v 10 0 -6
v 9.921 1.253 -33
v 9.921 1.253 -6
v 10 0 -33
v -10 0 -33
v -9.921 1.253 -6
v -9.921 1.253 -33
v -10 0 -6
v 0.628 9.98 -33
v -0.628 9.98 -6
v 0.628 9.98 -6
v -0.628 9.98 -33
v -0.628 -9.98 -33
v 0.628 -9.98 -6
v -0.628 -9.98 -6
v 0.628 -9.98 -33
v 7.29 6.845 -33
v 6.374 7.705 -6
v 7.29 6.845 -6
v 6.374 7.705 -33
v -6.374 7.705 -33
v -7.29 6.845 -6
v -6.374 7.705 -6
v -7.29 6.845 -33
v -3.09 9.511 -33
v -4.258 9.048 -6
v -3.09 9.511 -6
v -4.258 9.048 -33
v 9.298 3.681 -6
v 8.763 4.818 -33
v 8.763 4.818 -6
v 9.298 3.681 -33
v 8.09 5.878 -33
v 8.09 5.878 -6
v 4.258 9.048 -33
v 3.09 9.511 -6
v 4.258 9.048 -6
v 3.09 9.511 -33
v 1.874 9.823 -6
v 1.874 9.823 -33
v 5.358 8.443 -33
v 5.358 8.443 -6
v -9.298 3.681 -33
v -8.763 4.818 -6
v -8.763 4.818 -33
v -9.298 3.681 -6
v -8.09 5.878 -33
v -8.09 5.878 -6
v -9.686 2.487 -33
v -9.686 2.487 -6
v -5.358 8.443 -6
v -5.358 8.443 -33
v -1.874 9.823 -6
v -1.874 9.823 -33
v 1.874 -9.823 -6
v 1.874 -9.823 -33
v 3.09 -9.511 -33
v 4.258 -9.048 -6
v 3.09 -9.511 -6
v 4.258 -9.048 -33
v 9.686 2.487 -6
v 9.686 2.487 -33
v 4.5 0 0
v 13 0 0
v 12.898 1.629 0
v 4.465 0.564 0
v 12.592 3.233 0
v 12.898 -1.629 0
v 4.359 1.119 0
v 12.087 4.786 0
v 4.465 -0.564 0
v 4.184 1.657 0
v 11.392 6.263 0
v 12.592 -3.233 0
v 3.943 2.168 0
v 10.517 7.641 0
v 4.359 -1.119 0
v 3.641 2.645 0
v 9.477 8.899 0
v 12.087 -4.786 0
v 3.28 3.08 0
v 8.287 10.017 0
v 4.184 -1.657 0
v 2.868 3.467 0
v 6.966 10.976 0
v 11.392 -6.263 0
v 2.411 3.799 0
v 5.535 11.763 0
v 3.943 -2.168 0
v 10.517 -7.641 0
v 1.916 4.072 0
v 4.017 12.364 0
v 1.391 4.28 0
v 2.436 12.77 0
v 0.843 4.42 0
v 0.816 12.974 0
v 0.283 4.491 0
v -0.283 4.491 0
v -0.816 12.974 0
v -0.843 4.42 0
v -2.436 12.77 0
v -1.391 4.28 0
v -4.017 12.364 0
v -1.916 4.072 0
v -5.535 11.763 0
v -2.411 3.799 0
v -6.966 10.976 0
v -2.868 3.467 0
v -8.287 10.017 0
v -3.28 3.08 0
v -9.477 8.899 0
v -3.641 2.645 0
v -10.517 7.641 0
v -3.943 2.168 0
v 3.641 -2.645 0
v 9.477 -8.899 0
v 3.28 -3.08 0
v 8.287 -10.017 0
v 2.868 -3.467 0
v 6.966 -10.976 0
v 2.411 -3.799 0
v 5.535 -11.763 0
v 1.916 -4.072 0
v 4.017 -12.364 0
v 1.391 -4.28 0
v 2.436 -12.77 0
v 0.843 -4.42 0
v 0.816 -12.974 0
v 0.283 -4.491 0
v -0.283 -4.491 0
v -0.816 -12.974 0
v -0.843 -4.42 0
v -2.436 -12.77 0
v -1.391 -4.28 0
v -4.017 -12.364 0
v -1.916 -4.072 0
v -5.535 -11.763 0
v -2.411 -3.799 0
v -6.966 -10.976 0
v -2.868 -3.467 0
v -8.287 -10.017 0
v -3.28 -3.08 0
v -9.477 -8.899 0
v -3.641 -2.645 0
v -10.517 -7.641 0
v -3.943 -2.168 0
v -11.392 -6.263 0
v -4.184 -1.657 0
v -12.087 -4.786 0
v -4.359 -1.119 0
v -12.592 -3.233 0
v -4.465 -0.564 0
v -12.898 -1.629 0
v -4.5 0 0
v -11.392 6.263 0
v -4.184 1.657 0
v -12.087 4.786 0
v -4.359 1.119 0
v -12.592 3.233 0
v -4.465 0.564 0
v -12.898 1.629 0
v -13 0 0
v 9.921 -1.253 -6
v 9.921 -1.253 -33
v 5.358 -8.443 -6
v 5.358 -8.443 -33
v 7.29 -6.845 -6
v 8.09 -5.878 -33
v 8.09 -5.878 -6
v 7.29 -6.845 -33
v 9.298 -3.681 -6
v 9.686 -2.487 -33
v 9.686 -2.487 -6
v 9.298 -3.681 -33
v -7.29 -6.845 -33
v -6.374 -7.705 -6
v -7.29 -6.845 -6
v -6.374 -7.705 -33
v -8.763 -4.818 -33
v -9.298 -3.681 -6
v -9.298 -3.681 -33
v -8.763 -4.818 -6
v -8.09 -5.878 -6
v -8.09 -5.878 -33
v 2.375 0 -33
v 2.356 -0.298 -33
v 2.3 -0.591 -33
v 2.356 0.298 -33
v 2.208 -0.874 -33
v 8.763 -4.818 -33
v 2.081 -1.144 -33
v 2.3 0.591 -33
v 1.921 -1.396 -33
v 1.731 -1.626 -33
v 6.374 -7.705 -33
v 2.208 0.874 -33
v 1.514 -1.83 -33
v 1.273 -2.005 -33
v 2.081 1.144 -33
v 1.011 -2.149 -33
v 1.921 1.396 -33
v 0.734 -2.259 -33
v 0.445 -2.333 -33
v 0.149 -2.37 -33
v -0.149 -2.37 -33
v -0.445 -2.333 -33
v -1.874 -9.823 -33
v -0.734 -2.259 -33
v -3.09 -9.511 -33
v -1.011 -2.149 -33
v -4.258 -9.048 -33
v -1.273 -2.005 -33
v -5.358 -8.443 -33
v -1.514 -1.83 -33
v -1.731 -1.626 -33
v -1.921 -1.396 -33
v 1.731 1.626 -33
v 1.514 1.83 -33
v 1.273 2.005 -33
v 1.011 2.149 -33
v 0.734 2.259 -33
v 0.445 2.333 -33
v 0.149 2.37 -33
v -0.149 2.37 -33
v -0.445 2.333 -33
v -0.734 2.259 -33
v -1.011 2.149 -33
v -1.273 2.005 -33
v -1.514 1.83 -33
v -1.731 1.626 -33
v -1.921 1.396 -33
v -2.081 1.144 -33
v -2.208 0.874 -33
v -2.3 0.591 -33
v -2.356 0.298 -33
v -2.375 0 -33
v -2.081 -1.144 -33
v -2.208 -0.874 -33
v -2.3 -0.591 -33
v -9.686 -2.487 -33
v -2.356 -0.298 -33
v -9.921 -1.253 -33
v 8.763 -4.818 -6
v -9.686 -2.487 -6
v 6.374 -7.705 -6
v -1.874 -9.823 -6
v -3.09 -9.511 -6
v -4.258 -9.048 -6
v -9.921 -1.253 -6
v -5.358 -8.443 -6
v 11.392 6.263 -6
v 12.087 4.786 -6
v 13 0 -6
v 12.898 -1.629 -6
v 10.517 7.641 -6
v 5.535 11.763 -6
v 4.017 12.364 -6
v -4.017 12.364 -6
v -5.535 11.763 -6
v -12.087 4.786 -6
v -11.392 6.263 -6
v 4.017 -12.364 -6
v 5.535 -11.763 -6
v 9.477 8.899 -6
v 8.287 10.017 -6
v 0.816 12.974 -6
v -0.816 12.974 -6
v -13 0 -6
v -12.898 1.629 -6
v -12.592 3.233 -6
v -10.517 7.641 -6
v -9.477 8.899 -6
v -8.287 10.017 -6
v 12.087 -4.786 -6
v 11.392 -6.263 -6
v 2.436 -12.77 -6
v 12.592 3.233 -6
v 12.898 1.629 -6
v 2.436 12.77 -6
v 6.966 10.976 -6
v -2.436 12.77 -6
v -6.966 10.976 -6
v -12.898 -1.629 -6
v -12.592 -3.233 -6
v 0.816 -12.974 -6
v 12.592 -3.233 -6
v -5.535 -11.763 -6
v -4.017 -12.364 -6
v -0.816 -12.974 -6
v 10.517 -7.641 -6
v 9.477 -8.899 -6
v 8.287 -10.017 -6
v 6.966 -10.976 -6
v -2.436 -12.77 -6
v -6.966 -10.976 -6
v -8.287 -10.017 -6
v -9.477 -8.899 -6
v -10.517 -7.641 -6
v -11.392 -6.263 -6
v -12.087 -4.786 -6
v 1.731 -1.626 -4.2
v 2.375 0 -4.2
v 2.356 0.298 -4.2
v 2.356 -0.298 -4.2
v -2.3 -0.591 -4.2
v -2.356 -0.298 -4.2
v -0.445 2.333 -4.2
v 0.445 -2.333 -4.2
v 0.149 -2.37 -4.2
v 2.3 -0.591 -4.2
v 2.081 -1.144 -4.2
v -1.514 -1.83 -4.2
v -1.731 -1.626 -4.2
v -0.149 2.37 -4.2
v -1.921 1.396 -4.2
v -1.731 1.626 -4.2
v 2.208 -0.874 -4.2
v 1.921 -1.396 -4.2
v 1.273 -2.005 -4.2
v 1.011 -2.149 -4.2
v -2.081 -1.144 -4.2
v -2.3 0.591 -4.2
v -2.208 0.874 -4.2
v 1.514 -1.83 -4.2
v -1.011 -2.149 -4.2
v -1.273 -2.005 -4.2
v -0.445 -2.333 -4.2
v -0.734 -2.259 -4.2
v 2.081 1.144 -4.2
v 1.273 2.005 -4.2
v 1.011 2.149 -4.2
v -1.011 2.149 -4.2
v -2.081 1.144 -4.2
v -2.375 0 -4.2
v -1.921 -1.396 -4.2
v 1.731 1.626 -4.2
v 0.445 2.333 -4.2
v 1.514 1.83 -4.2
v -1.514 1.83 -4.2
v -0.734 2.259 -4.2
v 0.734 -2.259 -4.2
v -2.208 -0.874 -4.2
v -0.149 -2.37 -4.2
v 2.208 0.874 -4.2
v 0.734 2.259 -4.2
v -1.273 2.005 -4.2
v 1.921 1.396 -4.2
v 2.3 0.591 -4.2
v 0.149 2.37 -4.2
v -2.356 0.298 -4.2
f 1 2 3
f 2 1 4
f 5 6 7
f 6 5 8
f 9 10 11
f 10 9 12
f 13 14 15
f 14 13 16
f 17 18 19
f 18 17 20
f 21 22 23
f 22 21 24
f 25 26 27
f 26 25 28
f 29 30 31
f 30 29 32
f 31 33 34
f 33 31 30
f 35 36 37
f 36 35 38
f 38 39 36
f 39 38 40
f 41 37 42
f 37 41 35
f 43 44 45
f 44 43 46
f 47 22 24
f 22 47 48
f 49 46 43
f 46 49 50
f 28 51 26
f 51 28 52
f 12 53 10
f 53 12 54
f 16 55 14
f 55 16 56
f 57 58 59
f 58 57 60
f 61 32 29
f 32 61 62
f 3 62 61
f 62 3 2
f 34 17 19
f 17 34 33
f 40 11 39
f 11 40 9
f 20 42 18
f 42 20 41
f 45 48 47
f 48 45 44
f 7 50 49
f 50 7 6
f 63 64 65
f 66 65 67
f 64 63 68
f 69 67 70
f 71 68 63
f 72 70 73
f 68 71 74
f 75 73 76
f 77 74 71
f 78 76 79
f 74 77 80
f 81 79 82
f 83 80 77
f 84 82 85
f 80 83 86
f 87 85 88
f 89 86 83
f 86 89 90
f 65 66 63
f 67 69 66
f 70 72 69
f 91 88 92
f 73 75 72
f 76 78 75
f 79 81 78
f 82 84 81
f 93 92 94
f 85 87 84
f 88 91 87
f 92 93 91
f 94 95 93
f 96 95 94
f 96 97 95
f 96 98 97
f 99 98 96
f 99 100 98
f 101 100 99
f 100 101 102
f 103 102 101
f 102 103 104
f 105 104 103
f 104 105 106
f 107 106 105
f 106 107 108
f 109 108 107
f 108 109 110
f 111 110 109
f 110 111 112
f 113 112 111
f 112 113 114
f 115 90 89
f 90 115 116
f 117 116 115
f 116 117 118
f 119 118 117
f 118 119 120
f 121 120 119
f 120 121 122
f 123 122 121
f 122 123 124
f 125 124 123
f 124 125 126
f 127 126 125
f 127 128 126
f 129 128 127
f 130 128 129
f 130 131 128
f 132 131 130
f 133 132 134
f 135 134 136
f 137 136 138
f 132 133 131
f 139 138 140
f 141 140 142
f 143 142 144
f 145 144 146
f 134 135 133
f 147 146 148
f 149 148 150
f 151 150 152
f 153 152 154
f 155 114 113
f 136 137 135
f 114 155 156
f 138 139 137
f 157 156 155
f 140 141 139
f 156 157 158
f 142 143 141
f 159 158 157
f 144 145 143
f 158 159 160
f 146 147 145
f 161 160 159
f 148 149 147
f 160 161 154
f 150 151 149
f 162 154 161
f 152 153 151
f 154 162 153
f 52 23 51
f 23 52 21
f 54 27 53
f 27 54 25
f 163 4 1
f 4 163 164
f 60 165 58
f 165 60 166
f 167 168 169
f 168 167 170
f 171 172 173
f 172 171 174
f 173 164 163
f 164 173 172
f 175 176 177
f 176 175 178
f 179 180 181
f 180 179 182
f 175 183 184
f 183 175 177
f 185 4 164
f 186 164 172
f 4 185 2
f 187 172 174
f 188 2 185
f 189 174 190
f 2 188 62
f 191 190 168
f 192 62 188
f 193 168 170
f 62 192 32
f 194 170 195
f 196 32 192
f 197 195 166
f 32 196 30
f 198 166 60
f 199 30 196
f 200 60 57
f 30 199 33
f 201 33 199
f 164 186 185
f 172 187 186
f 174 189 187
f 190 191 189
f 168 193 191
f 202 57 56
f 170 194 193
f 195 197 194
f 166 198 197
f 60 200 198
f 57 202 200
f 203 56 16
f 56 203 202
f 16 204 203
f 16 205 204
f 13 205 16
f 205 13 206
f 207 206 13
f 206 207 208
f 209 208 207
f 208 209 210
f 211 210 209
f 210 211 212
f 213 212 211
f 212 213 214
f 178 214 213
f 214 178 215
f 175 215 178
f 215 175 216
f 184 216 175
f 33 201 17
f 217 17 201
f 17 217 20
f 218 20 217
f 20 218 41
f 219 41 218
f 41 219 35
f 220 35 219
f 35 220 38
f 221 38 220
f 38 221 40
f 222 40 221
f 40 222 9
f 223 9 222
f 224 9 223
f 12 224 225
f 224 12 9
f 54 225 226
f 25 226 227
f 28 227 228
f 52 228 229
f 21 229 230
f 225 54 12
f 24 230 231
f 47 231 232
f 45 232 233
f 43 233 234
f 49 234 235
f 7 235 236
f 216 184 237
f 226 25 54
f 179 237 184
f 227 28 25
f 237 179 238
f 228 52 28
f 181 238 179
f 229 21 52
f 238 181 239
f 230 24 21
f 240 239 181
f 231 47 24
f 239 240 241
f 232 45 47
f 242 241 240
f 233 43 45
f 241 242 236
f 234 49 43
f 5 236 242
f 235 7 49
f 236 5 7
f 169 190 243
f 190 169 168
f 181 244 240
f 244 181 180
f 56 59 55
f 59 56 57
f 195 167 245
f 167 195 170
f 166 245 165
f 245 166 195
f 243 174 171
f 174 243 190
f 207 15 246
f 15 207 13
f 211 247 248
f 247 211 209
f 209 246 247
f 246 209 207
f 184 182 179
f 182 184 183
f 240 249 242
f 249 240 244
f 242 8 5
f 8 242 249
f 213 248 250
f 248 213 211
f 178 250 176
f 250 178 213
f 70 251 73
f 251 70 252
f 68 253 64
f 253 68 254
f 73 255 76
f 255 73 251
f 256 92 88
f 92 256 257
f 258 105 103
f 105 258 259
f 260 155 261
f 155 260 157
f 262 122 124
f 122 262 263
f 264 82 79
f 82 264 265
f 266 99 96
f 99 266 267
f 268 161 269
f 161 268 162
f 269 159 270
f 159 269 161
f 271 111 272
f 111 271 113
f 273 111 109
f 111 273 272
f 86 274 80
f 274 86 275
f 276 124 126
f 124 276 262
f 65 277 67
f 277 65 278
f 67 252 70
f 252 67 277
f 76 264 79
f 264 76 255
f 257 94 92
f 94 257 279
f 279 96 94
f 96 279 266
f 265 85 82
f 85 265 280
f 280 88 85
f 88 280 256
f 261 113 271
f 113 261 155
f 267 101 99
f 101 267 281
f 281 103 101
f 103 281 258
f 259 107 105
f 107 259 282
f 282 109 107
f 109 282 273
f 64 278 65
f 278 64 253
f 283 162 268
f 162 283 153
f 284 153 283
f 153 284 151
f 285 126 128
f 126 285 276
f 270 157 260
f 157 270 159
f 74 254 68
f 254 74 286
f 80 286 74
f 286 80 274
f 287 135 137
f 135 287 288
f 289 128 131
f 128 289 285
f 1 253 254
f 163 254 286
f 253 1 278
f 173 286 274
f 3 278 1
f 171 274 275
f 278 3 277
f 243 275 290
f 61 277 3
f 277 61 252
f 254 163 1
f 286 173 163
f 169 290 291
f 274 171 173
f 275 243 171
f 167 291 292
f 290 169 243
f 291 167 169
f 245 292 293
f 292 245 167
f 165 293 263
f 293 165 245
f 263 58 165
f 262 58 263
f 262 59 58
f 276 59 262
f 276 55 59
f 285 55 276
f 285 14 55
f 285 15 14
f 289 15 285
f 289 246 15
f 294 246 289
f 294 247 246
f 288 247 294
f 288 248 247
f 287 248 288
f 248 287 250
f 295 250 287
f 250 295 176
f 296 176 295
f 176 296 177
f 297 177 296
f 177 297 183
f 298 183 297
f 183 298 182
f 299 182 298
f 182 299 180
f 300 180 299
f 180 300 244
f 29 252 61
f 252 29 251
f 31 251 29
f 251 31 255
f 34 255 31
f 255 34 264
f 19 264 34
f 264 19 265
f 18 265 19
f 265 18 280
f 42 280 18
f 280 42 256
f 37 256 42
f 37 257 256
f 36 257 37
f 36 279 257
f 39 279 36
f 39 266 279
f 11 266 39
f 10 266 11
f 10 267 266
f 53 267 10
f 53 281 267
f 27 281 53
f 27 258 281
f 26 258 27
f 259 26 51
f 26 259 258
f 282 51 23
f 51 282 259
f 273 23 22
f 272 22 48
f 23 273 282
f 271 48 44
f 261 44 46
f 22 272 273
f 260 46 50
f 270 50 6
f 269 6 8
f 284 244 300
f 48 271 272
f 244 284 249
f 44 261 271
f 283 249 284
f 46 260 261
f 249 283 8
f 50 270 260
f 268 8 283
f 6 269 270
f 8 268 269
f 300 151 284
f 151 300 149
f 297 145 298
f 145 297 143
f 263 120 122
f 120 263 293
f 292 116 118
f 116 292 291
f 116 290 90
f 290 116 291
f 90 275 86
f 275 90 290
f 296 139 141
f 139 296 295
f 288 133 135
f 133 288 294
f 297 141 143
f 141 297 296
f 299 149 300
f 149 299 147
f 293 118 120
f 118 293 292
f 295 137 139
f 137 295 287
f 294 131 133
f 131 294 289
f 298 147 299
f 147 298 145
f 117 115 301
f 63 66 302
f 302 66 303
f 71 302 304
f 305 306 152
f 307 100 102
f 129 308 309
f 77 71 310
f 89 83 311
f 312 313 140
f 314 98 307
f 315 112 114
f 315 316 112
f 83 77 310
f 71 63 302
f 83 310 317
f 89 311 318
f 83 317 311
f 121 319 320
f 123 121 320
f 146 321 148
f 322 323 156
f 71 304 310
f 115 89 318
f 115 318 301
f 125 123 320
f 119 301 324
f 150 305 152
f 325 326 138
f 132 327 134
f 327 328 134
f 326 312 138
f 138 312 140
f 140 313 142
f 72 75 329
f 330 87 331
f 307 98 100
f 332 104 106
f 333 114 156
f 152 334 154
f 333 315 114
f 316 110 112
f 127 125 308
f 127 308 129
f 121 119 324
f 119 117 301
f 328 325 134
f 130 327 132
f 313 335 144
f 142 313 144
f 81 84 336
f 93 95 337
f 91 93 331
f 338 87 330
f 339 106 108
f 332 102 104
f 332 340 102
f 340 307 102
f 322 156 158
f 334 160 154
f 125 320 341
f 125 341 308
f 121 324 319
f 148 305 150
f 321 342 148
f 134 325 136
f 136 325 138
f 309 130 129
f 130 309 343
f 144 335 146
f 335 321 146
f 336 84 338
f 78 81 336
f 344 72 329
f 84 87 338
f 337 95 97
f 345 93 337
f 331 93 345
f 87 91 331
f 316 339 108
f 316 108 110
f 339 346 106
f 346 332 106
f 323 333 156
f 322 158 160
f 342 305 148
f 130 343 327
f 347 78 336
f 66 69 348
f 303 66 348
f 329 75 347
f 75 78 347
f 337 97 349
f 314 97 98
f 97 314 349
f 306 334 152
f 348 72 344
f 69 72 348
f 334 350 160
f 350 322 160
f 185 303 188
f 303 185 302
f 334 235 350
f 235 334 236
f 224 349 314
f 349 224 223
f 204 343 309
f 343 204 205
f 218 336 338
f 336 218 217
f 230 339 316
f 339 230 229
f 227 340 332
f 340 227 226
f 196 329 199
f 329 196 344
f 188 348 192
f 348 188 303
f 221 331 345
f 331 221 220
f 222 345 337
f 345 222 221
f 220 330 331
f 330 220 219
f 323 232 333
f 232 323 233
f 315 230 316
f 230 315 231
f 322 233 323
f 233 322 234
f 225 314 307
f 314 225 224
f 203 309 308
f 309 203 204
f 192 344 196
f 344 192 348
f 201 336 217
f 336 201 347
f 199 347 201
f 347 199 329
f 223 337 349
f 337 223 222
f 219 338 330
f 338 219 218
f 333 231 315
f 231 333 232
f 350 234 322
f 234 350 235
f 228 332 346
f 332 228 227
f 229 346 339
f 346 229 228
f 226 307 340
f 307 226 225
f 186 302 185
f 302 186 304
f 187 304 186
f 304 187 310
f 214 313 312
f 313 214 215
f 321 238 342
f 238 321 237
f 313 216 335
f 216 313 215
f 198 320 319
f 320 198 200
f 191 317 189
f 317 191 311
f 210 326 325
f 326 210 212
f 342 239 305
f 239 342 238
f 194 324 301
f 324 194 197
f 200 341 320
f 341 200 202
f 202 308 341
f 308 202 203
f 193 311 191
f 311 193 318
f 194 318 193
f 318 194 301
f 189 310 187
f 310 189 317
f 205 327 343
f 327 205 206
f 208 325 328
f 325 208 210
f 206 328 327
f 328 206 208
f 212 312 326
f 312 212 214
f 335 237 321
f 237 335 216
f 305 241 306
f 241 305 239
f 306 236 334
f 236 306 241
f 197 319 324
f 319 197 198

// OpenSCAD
$fn = 50;


difference() {
	union() {
		translate(v = [0, 0, -33.0000000000]) {
			cylinder(h = 33, r = 10.0000000000);
		}
		translate(v = [0, 0, -6.0000000000]) {
			cylinder(h = 6, r = 13.0000000000);
		}
	}
	union() {
		translate(v = [0, 0, 0]) {
			rotate(a = [0, 0, 0]) {
				difference() {
					union() {
						#translate(v = [0, 0, -33.0000000000]) {
							cylinder(h = 33, r = 2.2500000000);
						}
						#translate(v = [0, 0, -4.2000000000]) {
							cylinder(h = 4.2000000000, r1 = 2.3750000000, r2 = 4.5000000000);
						}
						#translate(v = [0, 0, -33.0000000000]) {
							cylinder(h = 33, r = 2.3750000000);
						}
						#translate(v = [0, 0, -33.0000000000]) {
							cylinder(h = 33, r = 2.2500000000);
						}
					}
					union();
				}
			}
		}
	}
}
